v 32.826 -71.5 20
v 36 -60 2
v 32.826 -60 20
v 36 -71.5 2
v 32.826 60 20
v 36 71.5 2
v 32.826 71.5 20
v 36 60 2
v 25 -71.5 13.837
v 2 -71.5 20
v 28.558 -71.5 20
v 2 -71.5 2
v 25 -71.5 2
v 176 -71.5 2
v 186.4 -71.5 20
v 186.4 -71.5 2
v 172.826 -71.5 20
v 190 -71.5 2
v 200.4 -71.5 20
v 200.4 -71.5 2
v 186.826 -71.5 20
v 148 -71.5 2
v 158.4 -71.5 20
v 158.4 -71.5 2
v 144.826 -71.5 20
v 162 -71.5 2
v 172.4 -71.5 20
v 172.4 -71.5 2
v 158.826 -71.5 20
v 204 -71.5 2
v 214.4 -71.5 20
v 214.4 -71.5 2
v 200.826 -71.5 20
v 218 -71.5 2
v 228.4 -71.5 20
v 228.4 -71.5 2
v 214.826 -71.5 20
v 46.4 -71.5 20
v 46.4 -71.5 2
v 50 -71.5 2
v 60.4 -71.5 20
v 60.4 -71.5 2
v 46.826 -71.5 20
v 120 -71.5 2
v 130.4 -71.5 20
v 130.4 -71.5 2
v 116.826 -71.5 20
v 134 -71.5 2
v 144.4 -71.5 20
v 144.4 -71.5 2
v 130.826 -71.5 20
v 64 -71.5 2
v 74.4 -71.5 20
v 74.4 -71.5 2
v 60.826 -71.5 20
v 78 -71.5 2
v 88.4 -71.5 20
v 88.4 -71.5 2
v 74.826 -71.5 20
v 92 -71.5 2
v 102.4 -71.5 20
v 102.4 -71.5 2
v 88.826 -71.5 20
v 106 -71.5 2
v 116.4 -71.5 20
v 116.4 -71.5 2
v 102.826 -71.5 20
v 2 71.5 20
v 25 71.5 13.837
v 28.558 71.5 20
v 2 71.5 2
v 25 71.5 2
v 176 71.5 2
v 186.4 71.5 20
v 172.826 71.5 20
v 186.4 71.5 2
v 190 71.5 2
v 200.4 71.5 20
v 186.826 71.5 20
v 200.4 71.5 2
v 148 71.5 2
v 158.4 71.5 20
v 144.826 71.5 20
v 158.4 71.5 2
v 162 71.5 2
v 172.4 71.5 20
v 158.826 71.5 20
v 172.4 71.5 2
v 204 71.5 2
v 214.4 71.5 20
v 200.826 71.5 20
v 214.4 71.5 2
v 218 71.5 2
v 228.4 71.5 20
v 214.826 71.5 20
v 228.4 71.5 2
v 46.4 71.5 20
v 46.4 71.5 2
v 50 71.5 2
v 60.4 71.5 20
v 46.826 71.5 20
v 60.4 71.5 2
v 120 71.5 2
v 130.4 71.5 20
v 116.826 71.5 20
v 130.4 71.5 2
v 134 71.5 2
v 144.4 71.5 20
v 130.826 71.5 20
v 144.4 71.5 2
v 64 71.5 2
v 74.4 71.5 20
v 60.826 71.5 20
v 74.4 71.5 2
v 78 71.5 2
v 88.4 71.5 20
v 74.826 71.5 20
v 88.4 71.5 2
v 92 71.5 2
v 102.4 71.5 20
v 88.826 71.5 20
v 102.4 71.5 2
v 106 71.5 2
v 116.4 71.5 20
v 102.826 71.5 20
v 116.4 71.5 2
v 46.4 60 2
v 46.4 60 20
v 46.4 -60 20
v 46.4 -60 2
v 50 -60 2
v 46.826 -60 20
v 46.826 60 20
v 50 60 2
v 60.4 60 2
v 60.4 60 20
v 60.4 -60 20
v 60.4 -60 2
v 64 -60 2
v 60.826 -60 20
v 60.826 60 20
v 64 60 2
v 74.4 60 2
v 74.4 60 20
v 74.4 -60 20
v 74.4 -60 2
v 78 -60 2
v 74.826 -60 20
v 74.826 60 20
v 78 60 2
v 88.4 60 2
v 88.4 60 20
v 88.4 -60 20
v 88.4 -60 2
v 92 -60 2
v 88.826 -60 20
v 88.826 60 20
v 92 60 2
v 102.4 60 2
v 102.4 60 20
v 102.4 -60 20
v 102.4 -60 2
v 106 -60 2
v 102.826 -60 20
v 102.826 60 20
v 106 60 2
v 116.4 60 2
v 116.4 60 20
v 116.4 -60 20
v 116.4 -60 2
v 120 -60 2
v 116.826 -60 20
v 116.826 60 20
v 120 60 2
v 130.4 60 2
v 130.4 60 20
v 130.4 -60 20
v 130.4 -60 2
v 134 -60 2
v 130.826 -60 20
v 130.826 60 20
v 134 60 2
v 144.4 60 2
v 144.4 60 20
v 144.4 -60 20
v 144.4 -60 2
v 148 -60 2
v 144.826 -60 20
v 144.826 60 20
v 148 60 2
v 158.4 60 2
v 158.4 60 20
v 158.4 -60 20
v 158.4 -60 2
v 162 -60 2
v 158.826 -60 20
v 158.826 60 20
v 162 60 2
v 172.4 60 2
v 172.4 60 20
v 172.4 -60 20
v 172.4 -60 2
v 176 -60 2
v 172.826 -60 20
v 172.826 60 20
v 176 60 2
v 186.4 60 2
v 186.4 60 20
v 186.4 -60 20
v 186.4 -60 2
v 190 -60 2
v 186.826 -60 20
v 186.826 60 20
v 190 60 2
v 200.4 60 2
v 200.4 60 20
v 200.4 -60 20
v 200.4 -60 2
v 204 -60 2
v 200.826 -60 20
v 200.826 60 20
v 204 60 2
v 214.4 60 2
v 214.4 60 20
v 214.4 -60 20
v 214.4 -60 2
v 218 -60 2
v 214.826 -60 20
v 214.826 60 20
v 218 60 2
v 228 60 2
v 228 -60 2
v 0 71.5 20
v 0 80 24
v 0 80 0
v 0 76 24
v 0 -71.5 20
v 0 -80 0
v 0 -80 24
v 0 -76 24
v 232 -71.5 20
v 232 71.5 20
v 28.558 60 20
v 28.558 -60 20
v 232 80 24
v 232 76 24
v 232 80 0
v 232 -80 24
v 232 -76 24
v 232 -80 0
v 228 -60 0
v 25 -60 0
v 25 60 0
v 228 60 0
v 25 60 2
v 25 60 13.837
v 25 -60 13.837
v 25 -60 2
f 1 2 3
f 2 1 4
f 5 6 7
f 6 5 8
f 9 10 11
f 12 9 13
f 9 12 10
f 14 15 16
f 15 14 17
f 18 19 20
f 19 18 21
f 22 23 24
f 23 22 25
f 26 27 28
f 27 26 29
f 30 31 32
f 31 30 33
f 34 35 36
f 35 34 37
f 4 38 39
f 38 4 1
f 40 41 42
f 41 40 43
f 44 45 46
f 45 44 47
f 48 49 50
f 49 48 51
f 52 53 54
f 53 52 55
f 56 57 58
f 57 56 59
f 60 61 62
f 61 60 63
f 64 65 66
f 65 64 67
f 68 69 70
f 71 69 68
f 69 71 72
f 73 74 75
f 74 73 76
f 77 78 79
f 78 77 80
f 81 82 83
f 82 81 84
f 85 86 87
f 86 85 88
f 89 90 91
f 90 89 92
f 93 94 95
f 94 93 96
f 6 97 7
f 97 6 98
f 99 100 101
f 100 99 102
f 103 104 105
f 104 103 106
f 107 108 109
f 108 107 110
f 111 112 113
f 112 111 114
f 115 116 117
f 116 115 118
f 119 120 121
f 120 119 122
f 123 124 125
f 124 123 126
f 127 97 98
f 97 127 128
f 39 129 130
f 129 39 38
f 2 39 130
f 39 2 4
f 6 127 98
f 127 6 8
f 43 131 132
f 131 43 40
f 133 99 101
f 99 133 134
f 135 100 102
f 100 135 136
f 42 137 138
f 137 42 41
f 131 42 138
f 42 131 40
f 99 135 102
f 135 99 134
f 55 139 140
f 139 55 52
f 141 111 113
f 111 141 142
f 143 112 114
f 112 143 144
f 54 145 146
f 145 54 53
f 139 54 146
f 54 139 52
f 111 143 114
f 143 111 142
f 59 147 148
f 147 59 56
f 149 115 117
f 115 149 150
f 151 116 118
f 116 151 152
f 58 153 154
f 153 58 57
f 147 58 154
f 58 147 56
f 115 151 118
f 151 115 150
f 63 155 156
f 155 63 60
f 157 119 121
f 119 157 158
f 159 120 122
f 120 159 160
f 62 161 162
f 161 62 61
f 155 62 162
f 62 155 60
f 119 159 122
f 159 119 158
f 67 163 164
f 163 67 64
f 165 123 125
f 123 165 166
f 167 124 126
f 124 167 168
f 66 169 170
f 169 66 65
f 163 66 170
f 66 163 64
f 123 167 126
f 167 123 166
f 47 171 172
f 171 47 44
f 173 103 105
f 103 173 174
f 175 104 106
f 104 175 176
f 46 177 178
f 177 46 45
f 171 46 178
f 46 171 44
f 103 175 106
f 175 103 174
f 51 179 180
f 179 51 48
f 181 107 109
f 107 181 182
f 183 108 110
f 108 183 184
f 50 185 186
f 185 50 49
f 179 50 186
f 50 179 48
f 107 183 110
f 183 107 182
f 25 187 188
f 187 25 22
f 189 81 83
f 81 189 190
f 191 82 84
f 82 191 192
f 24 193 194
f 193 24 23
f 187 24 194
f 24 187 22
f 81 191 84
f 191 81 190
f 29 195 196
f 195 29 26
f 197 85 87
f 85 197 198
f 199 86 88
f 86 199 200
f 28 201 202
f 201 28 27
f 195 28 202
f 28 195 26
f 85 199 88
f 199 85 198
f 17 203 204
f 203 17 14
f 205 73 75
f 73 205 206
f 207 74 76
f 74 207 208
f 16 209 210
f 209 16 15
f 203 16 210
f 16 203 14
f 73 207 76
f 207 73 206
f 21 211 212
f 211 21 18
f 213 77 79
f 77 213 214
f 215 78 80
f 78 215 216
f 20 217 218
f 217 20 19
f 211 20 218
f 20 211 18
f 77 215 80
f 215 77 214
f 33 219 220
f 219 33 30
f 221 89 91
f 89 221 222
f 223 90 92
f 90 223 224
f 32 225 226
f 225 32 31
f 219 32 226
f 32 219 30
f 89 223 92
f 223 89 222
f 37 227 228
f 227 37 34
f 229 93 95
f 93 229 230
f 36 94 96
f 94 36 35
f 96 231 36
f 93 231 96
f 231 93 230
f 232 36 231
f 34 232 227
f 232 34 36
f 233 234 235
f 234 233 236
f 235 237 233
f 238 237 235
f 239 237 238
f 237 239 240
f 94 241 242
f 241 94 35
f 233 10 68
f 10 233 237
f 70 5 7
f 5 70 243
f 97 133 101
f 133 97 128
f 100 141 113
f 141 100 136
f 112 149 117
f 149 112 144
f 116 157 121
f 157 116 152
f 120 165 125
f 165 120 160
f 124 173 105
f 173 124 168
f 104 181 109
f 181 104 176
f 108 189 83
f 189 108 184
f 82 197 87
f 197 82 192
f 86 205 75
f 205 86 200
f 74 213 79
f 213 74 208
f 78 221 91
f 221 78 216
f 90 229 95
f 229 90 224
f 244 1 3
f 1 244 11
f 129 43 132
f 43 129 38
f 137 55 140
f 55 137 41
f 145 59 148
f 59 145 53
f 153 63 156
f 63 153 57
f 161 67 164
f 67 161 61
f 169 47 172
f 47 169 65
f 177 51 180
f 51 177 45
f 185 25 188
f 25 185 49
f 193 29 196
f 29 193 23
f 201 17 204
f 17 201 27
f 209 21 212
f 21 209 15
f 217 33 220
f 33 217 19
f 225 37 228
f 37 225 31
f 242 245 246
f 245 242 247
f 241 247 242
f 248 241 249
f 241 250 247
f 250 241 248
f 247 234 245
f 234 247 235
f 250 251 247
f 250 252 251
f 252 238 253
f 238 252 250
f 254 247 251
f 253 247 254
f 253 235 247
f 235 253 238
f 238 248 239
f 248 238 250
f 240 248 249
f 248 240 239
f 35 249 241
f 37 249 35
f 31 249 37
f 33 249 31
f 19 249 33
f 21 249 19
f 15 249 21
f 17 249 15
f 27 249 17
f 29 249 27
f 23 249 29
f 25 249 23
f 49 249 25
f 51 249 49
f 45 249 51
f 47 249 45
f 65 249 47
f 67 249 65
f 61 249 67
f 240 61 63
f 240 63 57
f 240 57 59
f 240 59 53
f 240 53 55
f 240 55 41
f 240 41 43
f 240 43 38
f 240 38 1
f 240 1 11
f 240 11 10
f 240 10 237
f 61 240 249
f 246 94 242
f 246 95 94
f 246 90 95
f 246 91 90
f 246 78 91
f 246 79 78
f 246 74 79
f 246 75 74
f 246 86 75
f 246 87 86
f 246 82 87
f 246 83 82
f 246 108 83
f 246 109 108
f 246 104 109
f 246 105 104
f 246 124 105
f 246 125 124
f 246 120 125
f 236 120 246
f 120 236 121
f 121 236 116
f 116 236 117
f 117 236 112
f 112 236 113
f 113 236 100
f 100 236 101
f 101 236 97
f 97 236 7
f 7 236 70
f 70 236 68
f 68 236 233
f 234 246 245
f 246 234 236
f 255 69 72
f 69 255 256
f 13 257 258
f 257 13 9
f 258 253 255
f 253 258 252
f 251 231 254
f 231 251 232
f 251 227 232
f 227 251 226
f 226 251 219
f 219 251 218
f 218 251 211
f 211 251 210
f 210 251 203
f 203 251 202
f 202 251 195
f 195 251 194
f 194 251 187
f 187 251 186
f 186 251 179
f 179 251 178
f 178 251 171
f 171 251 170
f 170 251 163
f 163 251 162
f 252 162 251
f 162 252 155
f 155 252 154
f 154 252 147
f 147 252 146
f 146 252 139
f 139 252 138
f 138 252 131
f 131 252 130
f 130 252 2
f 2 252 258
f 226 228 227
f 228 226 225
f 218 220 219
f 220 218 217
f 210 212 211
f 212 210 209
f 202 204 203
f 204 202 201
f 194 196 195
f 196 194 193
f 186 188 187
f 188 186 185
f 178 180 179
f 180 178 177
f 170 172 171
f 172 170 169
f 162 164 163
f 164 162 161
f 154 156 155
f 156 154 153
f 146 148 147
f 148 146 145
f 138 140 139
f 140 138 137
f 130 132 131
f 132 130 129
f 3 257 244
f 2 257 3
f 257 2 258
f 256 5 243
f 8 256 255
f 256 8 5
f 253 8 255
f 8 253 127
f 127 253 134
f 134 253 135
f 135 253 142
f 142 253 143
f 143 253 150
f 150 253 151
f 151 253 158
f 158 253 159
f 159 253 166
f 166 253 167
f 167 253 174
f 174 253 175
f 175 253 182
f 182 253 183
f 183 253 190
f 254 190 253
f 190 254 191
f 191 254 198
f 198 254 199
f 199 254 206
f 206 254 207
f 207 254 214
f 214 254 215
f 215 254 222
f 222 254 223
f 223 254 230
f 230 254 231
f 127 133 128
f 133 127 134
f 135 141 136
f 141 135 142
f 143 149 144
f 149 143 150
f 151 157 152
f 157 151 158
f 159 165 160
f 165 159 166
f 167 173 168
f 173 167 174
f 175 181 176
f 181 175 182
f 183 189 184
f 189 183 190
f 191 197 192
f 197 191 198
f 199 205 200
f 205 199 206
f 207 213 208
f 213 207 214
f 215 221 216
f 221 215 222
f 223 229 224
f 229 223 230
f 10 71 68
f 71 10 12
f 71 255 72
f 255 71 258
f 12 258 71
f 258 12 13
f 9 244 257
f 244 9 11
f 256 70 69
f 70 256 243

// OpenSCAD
module jewelCase(tilt=false) {
   translate([0,-71.5,2]) rotate([0,tilt?-10:0,0]) cube([10.4,143,125]);
}

module 2xJewelCase(tilt=false) {
   translate([0,-71.5,2]) rotate([0,tilt?-10:0,0]) cube([23,143,125]);
}

module jewelCaseSlot() {
   translate([0,0,0]) jewelCase(true);
   translate([0,0,0]) jewelCase(false);
}

difference() {
   union() {
      translate([0,-80,0]) rotate([0,0,0]) cube([232,160,20]);
      hull() {
        translate([0,-80,0]) rotate([0,0,0]) cube([232,8.5,20]);
        translate([0,-80,0]) rotate([0,0,0]) cube([232,4,24]);         
      } 
      hull() {
        translate([0,71.5,0]) rotate([0,0,0]) cube([232,8.5,20]);
        translate([0,76,0]) rotate([0,0,0]) cube([232,4,24]);         
      } 
       
   }
   union() {
      for(x=[36:14:230]) {
         translate([x,0,0]) jewelCaseSlot();
      }
      translate([25,-60,-10]) rotate([0,0,0]) cube([203,120,40]);
      translate([2,0,0]) rotate([0,0,0]) 2xJewelCase();
      translate([2,0,20]) rotate([0,30,0]) 2xJewelCase();

      
   }  
}
